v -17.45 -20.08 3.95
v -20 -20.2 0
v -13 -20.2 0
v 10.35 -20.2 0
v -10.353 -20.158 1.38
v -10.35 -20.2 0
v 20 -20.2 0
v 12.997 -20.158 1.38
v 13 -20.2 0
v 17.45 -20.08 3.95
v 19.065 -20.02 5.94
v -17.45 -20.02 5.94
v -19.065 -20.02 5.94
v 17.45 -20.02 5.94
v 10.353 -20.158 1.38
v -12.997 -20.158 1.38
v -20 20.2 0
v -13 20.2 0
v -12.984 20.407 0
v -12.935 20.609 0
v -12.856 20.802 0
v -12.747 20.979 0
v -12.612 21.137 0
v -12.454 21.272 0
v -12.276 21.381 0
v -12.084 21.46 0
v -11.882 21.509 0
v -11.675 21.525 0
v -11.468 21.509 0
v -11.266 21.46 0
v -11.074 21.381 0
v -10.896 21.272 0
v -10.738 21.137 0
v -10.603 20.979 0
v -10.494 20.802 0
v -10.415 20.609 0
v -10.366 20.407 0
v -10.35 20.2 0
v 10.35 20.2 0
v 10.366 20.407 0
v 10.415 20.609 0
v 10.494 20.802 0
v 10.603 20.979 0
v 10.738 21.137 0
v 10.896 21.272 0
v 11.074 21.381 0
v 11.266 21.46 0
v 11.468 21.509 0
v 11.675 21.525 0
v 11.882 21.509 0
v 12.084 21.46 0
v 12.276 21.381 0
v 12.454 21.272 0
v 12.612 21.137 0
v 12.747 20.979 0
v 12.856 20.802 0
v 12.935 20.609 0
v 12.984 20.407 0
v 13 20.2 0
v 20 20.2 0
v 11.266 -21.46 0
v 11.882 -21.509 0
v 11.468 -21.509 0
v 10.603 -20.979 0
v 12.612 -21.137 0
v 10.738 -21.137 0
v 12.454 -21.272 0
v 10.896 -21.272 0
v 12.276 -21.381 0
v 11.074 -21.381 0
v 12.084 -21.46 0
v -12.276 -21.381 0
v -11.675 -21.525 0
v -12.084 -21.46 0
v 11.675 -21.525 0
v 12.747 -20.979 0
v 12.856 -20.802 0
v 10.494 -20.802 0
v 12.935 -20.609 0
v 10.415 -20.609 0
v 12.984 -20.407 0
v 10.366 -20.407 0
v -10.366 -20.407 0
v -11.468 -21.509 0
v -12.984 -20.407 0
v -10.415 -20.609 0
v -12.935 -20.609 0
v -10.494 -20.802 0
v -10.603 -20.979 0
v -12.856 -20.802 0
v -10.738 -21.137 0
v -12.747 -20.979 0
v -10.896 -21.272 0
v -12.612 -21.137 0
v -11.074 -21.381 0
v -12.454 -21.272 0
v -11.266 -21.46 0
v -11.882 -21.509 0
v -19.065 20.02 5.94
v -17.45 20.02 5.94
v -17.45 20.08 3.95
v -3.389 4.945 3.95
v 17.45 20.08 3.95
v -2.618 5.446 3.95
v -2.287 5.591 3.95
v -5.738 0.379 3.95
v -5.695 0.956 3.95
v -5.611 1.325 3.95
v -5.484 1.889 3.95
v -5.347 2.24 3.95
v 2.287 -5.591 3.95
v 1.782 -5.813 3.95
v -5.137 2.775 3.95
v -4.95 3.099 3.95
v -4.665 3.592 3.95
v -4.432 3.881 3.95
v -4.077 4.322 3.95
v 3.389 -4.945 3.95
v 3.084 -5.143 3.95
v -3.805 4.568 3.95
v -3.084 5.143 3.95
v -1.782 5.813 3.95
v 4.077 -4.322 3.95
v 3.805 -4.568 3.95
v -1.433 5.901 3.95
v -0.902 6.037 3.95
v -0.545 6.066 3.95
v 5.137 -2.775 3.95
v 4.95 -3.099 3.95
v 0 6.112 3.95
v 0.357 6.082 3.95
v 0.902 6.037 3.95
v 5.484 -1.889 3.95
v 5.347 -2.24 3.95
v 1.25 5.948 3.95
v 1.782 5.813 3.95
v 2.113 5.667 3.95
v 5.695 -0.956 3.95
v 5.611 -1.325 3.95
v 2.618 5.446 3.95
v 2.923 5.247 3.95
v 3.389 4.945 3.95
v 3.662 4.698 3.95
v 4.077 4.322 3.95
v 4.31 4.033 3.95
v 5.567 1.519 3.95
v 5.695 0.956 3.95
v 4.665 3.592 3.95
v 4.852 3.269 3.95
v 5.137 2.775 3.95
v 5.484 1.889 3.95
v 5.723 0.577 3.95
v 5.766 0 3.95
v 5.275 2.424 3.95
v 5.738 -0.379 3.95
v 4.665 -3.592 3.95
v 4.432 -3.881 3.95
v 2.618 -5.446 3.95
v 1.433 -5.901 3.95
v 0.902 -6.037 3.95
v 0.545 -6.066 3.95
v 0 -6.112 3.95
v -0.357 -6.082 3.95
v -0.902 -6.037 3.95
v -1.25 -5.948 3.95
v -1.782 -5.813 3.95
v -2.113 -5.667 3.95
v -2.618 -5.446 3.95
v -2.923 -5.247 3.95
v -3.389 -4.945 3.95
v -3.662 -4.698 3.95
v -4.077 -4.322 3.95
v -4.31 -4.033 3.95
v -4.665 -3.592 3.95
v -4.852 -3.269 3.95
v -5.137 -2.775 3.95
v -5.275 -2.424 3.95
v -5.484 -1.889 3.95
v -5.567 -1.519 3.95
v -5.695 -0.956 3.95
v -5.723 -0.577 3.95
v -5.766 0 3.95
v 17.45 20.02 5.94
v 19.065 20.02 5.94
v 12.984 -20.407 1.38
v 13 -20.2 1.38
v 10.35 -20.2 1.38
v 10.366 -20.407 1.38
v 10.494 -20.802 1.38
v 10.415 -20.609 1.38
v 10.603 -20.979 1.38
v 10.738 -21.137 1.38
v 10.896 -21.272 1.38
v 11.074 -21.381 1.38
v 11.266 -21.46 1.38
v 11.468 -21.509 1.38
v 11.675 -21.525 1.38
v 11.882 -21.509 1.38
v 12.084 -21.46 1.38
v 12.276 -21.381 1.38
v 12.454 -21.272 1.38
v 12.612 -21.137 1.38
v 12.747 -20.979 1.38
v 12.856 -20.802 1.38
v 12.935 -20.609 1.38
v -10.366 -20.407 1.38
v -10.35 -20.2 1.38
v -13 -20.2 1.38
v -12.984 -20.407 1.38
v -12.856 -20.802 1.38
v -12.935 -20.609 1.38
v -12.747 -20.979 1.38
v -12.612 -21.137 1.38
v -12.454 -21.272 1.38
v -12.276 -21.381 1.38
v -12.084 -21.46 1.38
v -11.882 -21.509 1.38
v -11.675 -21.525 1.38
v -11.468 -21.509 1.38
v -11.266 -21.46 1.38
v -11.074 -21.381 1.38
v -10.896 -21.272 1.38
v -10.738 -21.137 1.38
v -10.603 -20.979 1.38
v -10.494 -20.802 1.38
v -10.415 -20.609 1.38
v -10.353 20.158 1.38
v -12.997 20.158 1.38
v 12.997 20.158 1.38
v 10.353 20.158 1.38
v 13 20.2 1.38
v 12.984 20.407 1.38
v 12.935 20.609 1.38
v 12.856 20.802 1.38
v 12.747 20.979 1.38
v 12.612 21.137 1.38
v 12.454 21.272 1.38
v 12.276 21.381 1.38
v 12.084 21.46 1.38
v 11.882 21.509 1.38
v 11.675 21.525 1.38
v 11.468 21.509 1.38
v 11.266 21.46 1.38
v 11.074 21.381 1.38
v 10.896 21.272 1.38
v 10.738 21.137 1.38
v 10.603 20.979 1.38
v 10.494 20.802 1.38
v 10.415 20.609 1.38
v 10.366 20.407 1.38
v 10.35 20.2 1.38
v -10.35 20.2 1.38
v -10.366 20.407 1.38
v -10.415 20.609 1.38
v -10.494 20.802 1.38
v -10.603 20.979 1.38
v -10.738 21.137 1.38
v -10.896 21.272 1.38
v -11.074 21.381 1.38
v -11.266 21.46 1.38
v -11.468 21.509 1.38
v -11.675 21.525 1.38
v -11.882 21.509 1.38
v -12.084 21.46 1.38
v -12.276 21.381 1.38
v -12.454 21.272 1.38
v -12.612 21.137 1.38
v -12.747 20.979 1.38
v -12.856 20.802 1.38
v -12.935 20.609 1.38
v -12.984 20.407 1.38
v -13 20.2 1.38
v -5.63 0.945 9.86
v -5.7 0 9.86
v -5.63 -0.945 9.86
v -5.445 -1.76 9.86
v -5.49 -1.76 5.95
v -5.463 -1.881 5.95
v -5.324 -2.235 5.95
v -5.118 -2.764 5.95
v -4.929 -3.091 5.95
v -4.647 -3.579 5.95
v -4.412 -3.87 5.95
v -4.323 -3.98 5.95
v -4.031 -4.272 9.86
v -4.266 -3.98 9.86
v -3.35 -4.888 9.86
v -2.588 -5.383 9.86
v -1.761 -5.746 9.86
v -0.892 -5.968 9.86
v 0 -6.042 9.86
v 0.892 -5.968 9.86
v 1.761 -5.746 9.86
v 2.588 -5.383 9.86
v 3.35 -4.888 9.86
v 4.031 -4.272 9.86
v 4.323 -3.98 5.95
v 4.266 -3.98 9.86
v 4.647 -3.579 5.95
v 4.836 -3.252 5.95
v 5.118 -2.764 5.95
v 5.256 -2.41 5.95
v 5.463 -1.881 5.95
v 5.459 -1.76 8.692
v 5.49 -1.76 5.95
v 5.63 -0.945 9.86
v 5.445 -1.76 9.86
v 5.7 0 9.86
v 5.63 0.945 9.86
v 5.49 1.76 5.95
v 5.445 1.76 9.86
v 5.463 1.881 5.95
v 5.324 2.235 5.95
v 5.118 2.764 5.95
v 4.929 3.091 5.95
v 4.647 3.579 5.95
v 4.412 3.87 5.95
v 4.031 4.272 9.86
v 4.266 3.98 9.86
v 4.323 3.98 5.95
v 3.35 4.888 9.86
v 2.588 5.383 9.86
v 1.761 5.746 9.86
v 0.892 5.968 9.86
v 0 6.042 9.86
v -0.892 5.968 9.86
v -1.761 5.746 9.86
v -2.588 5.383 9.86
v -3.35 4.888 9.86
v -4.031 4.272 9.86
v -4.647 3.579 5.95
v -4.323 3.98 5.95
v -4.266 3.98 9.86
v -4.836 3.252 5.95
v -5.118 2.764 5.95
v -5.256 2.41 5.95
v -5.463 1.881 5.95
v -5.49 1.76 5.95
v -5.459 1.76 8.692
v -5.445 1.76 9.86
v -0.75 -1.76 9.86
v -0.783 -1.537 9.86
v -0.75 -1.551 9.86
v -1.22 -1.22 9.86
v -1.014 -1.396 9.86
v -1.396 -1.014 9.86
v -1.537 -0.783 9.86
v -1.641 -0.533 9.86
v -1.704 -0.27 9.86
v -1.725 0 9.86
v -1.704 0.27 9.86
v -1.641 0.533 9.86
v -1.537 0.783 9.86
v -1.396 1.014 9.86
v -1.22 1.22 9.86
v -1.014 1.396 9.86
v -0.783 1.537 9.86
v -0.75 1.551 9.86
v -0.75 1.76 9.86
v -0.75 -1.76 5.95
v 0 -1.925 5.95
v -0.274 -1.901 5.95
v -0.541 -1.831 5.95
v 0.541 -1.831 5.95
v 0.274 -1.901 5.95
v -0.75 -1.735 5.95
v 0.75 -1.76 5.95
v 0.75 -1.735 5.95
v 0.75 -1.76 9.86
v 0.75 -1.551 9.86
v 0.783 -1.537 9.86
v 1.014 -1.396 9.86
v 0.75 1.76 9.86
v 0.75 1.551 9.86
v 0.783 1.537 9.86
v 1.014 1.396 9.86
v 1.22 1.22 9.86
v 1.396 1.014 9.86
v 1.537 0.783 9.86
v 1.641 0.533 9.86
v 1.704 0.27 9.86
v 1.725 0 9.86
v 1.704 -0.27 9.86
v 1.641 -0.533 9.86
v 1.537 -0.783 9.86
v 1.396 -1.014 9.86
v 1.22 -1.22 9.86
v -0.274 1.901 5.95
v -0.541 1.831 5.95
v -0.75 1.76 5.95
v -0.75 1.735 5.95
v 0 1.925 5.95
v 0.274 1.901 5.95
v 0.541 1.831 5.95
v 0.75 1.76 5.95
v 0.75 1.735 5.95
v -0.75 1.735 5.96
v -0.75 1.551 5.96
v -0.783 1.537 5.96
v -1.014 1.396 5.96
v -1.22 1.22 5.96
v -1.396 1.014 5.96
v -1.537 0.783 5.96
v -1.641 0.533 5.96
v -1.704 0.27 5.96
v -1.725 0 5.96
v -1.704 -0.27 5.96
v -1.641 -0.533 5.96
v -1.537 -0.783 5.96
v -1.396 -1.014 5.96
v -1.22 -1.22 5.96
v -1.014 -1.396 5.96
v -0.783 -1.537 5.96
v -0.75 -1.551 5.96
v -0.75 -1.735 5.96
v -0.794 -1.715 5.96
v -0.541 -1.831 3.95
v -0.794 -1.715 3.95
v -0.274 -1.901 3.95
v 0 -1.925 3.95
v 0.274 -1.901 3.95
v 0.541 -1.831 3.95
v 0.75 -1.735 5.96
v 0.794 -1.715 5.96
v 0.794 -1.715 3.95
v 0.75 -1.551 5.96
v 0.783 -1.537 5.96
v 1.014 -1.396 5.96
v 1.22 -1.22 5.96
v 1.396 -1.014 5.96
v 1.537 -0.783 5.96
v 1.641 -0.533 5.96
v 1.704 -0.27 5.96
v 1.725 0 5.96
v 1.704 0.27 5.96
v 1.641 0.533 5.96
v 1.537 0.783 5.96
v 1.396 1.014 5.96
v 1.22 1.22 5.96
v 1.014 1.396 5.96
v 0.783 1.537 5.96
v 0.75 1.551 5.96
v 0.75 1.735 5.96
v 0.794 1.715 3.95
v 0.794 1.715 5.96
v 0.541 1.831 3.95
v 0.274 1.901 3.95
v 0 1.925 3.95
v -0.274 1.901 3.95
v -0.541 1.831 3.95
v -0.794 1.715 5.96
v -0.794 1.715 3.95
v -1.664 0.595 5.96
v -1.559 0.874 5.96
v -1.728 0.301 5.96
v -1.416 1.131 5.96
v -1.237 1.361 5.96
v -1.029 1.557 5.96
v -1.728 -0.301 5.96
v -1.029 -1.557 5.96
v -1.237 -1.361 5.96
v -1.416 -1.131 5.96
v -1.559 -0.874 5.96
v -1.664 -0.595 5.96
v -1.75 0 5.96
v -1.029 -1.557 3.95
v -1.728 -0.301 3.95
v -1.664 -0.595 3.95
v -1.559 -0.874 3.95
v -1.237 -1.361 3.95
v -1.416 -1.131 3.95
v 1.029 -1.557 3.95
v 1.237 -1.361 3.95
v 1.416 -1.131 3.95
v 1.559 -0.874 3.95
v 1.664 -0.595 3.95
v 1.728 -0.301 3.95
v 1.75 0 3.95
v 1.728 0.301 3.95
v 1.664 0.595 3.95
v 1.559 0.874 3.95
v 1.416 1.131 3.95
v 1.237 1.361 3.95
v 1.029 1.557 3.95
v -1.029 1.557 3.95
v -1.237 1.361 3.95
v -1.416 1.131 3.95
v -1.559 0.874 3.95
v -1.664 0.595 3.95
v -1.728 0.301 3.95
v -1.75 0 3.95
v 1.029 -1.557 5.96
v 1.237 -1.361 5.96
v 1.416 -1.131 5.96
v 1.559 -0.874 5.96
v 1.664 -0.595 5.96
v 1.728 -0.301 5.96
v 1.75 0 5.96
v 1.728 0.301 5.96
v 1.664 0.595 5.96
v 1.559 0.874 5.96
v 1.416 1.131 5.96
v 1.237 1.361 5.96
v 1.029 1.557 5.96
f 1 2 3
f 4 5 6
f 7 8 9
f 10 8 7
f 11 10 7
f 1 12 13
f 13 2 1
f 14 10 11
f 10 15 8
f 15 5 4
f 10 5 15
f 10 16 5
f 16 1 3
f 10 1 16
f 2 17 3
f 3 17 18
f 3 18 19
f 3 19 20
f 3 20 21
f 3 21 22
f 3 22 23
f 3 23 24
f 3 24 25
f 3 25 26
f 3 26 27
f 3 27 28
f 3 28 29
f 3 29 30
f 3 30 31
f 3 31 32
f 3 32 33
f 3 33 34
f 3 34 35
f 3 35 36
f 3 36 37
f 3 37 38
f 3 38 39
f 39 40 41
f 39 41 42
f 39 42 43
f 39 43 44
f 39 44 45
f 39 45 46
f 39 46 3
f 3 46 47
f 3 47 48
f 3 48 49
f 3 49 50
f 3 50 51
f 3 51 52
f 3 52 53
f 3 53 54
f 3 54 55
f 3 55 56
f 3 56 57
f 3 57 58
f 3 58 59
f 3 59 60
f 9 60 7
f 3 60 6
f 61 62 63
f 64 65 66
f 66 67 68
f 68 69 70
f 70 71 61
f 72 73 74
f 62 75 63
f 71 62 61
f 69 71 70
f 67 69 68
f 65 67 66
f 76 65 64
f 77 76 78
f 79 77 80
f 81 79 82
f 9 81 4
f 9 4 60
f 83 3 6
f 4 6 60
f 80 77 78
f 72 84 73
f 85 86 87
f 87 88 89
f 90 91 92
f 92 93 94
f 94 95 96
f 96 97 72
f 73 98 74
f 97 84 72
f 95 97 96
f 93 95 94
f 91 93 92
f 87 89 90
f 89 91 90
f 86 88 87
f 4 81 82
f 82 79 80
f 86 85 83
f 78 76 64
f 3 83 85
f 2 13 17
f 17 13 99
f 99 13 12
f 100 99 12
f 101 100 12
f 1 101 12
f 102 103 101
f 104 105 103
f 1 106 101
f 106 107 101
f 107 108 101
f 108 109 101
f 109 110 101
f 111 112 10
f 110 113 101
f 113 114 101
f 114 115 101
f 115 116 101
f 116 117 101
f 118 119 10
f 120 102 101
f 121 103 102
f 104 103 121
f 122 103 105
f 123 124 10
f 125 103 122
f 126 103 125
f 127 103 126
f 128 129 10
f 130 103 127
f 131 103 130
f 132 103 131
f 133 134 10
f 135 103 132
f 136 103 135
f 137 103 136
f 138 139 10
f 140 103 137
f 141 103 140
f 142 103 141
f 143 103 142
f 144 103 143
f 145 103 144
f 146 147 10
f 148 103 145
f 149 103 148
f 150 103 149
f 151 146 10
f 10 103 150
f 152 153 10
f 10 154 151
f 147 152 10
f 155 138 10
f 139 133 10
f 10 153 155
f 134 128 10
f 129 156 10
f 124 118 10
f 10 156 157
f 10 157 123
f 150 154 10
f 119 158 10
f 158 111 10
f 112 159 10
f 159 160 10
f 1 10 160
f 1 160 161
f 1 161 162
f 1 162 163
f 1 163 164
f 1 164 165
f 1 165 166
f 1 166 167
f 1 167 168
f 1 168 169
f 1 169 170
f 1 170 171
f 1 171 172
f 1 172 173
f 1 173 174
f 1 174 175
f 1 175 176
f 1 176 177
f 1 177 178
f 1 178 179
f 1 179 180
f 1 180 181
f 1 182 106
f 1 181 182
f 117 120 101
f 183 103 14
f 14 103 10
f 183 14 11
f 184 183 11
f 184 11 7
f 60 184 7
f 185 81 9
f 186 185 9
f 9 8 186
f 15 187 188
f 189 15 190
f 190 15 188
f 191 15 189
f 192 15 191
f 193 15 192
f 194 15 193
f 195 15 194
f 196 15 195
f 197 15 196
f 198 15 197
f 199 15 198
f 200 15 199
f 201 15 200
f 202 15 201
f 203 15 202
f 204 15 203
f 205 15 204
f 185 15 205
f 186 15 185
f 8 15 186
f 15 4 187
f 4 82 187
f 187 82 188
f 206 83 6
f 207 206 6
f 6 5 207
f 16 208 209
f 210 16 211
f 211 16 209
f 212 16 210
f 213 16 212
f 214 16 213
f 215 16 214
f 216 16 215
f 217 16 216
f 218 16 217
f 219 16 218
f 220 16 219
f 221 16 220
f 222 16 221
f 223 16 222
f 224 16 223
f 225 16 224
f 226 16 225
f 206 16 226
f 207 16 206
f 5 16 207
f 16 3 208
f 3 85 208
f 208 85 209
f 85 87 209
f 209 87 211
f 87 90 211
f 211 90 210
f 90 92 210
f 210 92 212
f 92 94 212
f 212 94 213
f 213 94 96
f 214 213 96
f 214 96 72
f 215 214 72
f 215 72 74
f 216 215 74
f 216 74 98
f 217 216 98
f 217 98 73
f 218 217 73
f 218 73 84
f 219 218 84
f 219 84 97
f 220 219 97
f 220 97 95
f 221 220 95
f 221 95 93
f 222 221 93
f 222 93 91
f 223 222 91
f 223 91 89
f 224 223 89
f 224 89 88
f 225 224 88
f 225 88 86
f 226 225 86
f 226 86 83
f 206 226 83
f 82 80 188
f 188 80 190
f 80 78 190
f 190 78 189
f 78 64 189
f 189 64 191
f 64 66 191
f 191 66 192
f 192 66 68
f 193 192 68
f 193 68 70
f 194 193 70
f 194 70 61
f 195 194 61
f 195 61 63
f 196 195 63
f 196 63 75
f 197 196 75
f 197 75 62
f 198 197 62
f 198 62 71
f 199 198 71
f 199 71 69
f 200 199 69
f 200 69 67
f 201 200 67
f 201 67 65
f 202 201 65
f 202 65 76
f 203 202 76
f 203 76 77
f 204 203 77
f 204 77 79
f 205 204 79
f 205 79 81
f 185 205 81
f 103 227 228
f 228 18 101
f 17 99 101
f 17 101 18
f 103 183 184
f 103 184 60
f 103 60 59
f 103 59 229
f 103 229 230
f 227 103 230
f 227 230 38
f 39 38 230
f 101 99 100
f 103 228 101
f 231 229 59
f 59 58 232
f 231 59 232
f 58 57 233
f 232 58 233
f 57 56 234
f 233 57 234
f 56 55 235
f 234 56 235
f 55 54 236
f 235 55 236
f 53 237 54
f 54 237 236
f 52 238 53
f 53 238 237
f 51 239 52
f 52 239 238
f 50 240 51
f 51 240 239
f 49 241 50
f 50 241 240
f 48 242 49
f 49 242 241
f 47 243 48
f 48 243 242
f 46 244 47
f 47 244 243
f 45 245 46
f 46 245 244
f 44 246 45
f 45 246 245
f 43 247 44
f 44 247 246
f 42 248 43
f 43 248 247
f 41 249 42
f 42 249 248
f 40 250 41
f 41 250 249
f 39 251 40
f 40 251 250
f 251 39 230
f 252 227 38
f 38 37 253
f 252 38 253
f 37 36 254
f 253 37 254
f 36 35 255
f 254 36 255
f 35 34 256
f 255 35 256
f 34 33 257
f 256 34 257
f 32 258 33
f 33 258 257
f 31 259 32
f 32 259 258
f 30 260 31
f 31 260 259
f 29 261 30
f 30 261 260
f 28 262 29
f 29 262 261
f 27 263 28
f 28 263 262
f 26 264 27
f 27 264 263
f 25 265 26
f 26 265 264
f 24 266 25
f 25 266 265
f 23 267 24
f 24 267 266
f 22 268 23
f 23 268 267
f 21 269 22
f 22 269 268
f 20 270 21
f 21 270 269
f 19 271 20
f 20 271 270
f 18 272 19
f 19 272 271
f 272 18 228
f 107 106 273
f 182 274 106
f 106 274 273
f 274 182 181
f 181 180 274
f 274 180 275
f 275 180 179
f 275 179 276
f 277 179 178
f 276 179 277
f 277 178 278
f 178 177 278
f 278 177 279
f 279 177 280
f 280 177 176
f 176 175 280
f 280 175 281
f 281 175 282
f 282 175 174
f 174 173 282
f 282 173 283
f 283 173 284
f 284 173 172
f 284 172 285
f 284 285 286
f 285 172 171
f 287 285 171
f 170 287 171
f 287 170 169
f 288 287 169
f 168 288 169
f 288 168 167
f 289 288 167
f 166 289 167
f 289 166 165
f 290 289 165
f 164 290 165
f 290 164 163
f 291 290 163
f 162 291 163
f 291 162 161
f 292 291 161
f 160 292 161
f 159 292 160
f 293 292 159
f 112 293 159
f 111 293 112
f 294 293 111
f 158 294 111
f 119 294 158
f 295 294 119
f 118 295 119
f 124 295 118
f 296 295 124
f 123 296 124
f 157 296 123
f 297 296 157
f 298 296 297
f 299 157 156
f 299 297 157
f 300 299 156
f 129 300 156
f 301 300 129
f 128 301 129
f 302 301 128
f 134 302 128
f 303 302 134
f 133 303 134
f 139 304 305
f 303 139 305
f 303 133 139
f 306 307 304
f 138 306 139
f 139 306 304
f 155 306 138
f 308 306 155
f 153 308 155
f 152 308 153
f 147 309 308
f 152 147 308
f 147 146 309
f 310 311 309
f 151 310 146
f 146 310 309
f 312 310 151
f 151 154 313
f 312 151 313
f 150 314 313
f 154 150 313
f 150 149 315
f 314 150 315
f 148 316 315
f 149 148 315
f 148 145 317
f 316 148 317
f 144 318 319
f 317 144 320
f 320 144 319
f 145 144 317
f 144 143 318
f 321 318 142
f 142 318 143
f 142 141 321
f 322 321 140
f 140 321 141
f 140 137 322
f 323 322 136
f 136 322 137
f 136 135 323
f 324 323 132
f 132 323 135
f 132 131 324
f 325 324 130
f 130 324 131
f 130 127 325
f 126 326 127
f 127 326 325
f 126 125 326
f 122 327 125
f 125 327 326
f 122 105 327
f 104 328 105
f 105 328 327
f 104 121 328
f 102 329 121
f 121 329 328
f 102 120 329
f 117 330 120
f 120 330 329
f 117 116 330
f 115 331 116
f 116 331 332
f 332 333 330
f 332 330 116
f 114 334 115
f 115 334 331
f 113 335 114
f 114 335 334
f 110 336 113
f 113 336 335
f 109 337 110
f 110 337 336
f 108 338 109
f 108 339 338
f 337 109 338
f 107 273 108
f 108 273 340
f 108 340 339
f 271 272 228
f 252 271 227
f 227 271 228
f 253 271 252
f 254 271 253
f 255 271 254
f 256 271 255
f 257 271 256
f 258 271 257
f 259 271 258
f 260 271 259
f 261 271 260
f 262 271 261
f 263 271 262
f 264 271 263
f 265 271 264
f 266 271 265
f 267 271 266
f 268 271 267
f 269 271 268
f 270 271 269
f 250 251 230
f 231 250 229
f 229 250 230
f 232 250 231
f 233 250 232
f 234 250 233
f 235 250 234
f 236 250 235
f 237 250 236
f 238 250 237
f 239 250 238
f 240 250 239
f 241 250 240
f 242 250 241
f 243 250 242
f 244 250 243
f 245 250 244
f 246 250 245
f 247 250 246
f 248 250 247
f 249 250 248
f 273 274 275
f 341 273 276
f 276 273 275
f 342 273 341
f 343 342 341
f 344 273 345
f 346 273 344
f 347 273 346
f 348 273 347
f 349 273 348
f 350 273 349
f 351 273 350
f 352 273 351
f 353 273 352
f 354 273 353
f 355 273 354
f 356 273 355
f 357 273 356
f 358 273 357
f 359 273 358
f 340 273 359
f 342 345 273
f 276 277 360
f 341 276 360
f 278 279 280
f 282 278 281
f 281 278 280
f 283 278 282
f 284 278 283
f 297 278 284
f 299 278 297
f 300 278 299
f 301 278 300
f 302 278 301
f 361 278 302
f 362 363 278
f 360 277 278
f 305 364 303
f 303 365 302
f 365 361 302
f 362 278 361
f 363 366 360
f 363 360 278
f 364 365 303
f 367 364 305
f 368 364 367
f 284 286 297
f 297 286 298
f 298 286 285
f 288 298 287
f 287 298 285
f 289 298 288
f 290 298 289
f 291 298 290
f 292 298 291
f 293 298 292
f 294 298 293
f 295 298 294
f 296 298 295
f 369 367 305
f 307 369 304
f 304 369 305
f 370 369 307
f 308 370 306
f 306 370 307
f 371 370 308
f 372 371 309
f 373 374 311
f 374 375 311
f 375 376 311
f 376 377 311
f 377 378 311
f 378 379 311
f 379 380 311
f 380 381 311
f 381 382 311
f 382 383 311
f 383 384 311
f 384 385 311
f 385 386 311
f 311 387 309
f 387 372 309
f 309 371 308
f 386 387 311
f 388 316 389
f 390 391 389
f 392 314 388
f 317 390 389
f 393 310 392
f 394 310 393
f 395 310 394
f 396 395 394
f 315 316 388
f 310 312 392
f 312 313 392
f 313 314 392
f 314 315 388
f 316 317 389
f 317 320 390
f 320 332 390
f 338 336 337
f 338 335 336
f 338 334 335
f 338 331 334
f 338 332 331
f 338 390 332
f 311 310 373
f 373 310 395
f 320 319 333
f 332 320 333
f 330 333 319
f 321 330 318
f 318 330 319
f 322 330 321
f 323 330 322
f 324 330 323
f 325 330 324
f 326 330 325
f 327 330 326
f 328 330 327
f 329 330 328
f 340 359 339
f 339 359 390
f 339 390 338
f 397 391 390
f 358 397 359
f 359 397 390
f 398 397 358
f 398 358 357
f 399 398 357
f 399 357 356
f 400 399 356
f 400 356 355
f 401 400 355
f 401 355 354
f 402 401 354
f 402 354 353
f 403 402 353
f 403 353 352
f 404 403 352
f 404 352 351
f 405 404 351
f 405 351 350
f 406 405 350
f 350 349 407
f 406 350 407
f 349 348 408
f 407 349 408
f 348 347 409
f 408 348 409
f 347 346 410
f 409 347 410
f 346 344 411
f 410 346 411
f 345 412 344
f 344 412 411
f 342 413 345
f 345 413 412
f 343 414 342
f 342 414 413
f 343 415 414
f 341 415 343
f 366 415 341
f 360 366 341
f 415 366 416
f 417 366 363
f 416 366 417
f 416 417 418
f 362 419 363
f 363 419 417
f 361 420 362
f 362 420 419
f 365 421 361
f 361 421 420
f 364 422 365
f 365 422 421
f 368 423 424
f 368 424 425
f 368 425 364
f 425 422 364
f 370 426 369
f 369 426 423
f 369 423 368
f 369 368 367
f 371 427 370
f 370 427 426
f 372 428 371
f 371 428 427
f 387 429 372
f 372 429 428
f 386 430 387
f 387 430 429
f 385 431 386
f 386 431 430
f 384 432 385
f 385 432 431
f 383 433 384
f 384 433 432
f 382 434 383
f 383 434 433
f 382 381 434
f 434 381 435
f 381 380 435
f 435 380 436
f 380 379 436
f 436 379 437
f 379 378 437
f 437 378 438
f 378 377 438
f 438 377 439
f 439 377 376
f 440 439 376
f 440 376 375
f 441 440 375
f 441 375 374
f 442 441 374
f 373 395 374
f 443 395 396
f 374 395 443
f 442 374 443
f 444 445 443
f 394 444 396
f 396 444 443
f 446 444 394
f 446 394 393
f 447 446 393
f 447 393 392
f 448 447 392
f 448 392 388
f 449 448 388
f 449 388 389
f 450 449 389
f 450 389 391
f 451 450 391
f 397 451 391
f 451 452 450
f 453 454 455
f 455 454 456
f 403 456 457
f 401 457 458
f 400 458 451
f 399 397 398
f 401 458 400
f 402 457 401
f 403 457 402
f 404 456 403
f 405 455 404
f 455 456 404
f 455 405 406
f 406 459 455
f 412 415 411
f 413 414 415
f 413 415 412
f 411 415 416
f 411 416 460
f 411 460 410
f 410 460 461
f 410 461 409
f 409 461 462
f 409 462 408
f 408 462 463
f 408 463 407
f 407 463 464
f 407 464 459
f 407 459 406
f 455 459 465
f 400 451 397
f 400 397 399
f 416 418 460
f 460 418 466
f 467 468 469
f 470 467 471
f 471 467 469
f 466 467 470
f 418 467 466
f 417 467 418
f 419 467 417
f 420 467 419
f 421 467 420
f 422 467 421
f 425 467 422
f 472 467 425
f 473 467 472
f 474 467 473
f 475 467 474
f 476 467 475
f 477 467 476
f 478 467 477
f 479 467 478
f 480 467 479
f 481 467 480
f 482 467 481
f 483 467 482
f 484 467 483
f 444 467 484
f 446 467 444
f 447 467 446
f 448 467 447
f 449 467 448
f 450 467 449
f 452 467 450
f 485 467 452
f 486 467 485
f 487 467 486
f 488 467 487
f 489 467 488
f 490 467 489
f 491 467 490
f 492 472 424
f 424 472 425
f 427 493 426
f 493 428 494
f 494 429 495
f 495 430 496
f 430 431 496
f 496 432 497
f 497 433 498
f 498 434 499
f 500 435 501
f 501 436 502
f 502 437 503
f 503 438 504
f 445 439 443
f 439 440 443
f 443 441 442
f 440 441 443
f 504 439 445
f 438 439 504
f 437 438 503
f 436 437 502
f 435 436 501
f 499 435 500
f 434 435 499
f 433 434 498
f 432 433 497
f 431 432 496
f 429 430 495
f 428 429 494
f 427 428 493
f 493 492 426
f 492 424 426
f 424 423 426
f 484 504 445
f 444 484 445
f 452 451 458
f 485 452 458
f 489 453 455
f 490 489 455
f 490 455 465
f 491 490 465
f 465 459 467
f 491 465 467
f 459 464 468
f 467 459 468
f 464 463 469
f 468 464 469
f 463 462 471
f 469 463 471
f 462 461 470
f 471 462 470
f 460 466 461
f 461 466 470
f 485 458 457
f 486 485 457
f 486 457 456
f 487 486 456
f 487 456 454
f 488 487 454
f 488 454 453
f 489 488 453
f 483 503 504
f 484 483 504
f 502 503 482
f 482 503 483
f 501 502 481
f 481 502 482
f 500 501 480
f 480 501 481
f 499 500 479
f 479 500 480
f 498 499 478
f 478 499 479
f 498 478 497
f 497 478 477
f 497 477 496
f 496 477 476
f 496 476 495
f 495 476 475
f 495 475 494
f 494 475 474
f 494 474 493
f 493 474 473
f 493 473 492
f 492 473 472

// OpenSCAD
/* small-base.scad
 *
 * Copyright (C) Robert B. Ross, 2014
 *
 * This software is released under the Creative Commons
 * Attribution-ShareAlike 4.0 International Public License.
 * 
 * TODO:
 *
 */

$fn=40;
pipSlop = 0.4; // Pips end up being a little too close together
pipPos = 20 - 7.4 - 2.65/2 + pipSlop;
insideSlop = 0.8; // Space for ID token is often short if printed exactly.
cylinderAspect = 1.06; // warping the central cylinder in the Y dimension to
                       // hold the ID token in place better.

/* main base with pips */
difference() {
    union() {
	polyhedron(points=[[-20,-20.2,0], [-20,20.2,0], [20,20.2,0],
			   [20, -20.2, 0],
			   [-38.13/2,-20.02,5.94], [-38.13/2, 20.02,5.94],
			   [38.13/2,20.02,5.94], [38.13/2, -20.02, 5.94]],
		   faces=[[3,2,1,0], [4,5,6,7], [0,1,5,4], [1,2,6,5], [2,3,7,6],
			  [3,0,4,7]]);
	
	
	translate([-1*pipPos,-20.2,0]) cylinder(r=2.65/2,h=1.38);
	translate([1*pipPos,-20.2,0]) cylinder(r=2.65/2,h=1.38);
	translate([-1*pipPos,20.2,0]) cylinder(r=2.65/2,h=1.38);
	translate([1*pipPos,20.2,0]) cylinder(r=2.65/2,h=1.38);
    }

    translate([-1*(34.1+insideSlop)/2,-21,3.95])
	cube([34.1+insideSlop,42,5.94-3.95+0.2]);
}

/* center cylinder with cut-outs */
difference() {
    scale([1,cylinderAspect,1]) cylinder(r1=11.62/2, r2=11.6/2-0.1,h=9.86);

    translate([0,0,3.95]) cylinder(r=3.45/2,h=9.86-3.95+0.2);

    /* accounting for plastic behavior */
    translate([0,0,3.95]) scale([1.0,1.1,1.0]) cylinder(r=3.5/2,h=2.01);


    /* room for identifiers */
    translate([-11.5/2,3.52/2,3.95+2]) cube([11.5,2.22,9.86-3.95+0.2]);
    mirror([0,1,0]) translate([-11.5/2,3.52/2,3.95+2]) cube([11.5,2.22,9.86-3.95+0.2]); // was 2.18

    translate([-0.75,-3,3.95+2]) cube([1.5,6,9.86-3.95+0.2]);
}

/*
 * Local variables:
 *  mode: C
 *  c-indent-level: 4
 *  c-basic-offset: 4
 * End:
 *
 * vim: ts=8 sts=4 sw=4 expandtab
 */
